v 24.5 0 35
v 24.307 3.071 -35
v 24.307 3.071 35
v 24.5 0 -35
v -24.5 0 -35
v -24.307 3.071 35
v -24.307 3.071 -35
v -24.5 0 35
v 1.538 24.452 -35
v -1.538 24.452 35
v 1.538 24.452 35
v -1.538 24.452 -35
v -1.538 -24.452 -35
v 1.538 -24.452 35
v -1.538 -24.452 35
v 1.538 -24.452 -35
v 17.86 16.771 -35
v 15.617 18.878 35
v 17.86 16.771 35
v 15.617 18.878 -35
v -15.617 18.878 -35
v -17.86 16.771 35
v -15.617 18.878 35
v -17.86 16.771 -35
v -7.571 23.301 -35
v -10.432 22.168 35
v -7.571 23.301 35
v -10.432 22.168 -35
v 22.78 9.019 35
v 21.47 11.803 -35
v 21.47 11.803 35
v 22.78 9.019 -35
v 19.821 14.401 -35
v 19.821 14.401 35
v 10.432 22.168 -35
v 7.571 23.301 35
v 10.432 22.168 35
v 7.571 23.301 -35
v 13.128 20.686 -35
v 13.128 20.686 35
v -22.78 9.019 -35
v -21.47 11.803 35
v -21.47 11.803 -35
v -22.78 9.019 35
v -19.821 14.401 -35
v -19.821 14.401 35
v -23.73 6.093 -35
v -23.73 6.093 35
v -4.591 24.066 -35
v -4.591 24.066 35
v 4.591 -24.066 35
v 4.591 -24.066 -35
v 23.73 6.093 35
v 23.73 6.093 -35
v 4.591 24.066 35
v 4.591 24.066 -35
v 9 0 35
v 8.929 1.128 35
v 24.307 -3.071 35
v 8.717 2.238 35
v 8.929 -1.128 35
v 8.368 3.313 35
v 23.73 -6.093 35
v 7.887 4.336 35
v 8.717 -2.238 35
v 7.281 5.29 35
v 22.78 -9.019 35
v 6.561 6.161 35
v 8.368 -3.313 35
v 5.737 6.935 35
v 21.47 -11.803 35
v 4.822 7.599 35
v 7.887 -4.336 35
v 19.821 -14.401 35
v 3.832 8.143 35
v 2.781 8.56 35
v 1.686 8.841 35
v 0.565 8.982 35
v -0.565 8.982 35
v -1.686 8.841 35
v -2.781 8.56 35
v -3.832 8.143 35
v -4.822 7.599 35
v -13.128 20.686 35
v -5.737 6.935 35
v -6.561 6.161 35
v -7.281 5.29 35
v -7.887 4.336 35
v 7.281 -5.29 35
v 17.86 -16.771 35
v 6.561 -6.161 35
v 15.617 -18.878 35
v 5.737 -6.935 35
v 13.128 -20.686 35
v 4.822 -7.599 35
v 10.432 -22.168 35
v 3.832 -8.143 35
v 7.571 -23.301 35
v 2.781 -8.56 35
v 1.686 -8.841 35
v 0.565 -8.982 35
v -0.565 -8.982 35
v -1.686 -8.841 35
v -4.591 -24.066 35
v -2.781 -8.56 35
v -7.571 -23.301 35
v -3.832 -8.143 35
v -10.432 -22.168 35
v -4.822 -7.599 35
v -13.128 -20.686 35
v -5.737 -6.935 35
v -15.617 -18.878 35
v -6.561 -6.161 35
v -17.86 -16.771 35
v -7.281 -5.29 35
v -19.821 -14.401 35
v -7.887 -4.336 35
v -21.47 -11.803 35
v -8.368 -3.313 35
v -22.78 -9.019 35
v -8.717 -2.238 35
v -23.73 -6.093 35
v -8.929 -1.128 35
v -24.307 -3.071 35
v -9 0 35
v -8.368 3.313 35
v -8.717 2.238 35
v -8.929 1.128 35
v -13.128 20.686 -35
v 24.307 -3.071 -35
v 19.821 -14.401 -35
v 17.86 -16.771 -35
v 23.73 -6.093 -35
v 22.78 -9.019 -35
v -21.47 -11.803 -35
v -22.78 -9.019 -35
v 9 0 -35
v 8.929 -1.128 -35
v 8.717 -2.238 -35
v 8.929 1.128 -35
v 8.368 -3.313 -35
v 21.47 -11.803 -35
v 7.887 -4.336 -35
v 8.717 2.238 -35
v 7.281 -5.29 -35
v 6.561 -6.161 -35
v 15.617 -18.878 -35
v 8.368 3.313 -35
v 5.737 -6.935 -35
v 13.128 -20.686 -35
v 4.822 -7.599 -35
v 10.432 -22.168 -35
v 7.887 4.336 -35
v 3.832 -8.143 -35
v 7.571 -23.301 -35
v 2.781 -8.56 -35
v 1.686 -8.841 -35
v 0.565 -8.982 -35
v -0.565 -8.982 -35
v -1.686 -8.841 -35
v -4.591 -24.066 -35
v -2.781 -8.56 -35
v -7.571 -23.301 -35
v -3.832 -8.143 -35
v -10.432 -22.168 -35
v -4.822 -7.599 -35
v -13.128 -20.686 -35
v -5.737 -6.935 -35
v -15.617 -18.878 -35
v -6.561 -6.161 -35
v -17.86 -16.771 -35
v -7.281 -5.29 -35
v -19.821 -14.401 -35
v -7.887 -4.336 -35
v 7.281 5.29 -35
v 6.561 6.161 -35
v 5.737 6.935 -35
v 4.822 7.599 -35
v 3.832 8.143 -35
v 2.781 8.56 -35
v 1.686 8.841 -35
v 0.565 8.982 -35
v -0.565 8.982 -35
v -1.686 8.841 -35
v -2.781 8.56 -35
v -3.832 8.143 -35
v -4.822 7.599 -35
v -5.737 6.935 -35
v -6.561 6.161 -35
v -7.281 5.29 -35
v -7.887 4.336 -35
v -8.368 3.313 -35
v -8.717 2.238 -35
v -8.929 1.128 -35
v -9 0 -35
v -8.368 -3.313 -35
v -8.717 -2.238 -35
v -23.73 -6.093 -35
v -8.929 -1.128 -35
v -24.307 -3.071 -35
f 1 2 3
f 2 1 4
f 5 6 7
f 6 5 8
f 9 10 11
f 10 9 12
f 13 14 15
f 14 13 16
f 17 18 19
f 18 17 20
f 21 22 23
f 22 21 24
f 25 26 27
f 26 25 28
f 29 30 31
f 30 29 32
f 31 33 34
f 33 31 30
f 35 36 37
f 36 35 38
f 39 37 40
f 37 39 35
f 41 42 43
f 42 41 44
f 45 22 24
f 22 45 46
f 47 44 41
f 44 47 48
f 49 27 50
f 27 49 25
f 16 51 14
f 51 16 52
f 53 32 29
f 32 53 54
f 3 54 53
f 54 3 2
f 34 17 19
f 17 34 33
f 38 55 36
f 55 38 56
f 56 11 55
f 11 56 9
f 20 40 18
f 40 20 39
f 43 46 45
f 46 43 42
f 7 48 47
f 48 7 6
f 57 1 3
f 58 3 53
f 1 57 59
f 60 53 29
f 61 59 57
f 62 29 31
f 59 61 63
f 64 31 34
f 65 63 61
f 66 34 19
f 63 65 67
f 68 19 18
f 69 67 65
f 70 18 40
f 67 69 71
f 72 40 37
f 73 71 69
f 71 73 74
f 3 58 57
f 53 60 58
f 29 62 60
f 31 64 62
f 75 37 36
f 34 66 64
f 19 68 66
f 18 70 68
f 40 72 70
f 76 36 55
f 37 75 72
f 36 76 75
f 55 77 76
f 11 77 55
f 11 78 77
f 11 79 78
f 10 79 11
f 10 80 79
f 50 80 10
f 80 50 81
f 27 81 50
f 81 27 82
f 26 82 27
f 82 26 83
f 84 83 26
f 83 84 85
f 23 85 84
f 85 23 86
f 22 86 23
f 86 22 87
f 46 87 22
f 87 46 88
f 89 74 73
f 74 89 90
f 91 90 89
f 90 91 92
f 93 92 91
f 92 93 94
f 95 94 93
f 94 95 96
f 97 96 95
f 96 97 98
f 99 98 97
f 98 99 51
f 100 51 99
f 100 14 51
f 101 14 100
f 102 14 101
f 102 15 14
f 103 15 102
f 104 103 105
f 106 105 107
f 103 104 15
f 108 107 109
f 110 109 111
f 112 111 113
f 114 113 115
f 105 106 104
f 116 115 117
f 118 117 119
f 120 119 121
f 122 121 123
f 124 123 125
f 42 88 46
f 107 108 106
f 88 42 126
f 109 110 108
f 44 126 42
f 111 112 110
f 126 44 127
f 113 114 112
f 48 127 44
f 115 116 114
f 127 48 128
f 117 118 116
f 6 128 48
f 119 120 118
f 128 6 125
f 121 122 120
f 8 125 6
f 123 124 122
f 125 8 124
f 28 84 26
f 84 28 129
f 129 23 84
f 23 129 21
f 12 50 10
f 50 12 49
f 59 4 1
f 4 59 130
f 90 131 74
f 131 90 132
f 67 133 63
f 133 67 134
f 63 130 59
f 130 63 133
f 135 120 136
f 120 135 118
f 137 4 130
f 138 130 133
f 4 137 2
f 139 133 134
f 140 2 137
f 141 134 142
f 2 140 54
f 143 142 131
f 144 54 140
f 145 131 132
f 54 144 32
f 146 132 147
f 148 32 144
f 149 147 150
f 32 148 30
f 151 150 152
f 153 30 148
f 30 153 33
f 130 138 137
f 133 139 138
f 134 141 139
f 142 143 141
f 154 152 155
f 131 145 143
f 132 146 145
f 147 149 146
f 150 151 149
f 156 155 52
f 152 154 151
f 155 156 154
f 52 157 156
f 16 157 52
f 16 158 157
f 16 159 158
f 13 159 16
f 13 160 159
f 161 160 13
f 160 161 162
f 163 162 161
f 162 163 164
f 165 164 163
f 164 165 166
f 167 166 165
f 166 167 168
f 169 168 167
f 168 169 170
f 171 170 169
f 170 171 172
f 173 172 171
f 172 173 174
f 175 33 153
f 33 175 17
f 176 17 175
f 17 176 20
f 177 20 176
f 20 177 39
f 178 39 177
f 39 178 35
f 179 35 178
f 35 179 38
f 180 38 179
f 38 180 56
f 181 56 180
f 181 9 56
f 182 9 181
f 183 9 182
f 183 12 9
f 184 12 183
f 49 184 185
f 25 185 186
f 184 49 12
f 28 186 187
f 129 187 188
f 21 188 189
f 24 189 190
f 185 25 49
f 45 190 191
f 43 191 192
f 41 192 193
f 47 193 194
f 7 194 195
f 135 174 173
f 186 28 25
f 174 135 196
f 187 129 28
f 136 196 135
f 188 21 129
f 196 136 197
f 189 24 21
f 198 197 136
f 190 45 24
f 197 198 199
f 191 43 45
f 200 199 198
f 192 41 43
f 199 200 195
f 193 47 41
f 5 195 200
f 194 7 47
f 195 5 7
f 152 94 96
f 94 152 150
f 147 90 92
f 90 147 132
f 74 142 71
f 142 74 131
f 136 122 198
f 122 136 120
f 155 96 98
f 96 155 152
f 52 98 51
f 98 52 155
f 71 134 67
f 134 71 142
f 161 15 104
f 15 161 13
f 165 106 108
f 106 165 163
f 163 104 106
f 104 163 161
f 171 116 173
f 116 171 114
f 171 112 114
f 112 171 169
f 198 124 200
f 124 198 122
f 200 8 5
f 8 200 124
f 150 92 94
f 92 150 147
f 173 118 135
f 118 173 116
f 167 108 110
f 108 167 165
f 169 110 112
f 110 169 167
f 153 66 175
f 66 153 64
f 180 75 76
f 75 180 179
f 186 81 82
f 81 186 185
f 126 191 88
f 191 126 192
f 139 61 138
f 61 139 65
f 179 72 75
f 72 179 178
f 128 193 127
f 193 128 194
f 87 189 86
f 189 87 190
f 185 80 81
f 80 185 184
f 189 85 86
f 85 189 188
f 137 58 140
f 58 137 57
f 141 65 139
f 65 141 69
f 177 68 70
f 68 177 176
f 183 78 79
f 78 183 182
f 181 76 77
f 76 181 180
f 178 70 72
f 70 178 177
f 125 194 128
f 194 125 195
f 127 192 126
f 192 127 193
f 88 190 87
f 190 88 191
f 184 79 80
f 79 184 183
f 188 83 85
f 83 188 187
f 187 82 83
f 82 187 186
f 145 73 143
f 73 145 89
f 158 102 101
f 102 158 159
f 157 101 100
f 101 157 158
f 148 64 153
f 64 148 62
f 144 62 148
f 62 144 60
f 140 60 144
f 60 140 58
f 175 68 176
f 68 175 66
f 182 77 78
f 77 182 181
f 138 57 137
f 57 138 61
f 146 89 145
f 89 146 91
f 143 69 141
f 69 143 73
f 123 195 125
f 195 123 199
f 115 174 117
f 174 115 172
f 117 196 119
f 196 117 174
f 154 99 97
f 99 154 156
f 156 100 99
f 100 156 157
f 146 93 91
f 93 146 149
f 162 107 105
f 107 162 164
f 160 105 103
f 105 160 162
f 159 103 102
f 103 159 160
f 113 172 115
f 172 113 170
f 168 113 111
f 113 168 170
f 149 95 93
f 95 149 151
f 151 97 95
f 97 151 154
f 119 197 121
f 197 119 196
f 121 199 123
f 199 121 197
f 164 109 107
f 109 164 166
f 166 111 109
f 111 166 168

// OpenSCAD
$fn = 50;


difference() {
	union() {
		translate(v = [0, 0, -35.0000000000]) {
			cylinder(h = 70, r = 24.5000000000);
		}
	}
	union() {
		translate(v = [0, 0, -100.0000000000]) {
			cylinder(h = 200, r = 9);
		}
	}
}
